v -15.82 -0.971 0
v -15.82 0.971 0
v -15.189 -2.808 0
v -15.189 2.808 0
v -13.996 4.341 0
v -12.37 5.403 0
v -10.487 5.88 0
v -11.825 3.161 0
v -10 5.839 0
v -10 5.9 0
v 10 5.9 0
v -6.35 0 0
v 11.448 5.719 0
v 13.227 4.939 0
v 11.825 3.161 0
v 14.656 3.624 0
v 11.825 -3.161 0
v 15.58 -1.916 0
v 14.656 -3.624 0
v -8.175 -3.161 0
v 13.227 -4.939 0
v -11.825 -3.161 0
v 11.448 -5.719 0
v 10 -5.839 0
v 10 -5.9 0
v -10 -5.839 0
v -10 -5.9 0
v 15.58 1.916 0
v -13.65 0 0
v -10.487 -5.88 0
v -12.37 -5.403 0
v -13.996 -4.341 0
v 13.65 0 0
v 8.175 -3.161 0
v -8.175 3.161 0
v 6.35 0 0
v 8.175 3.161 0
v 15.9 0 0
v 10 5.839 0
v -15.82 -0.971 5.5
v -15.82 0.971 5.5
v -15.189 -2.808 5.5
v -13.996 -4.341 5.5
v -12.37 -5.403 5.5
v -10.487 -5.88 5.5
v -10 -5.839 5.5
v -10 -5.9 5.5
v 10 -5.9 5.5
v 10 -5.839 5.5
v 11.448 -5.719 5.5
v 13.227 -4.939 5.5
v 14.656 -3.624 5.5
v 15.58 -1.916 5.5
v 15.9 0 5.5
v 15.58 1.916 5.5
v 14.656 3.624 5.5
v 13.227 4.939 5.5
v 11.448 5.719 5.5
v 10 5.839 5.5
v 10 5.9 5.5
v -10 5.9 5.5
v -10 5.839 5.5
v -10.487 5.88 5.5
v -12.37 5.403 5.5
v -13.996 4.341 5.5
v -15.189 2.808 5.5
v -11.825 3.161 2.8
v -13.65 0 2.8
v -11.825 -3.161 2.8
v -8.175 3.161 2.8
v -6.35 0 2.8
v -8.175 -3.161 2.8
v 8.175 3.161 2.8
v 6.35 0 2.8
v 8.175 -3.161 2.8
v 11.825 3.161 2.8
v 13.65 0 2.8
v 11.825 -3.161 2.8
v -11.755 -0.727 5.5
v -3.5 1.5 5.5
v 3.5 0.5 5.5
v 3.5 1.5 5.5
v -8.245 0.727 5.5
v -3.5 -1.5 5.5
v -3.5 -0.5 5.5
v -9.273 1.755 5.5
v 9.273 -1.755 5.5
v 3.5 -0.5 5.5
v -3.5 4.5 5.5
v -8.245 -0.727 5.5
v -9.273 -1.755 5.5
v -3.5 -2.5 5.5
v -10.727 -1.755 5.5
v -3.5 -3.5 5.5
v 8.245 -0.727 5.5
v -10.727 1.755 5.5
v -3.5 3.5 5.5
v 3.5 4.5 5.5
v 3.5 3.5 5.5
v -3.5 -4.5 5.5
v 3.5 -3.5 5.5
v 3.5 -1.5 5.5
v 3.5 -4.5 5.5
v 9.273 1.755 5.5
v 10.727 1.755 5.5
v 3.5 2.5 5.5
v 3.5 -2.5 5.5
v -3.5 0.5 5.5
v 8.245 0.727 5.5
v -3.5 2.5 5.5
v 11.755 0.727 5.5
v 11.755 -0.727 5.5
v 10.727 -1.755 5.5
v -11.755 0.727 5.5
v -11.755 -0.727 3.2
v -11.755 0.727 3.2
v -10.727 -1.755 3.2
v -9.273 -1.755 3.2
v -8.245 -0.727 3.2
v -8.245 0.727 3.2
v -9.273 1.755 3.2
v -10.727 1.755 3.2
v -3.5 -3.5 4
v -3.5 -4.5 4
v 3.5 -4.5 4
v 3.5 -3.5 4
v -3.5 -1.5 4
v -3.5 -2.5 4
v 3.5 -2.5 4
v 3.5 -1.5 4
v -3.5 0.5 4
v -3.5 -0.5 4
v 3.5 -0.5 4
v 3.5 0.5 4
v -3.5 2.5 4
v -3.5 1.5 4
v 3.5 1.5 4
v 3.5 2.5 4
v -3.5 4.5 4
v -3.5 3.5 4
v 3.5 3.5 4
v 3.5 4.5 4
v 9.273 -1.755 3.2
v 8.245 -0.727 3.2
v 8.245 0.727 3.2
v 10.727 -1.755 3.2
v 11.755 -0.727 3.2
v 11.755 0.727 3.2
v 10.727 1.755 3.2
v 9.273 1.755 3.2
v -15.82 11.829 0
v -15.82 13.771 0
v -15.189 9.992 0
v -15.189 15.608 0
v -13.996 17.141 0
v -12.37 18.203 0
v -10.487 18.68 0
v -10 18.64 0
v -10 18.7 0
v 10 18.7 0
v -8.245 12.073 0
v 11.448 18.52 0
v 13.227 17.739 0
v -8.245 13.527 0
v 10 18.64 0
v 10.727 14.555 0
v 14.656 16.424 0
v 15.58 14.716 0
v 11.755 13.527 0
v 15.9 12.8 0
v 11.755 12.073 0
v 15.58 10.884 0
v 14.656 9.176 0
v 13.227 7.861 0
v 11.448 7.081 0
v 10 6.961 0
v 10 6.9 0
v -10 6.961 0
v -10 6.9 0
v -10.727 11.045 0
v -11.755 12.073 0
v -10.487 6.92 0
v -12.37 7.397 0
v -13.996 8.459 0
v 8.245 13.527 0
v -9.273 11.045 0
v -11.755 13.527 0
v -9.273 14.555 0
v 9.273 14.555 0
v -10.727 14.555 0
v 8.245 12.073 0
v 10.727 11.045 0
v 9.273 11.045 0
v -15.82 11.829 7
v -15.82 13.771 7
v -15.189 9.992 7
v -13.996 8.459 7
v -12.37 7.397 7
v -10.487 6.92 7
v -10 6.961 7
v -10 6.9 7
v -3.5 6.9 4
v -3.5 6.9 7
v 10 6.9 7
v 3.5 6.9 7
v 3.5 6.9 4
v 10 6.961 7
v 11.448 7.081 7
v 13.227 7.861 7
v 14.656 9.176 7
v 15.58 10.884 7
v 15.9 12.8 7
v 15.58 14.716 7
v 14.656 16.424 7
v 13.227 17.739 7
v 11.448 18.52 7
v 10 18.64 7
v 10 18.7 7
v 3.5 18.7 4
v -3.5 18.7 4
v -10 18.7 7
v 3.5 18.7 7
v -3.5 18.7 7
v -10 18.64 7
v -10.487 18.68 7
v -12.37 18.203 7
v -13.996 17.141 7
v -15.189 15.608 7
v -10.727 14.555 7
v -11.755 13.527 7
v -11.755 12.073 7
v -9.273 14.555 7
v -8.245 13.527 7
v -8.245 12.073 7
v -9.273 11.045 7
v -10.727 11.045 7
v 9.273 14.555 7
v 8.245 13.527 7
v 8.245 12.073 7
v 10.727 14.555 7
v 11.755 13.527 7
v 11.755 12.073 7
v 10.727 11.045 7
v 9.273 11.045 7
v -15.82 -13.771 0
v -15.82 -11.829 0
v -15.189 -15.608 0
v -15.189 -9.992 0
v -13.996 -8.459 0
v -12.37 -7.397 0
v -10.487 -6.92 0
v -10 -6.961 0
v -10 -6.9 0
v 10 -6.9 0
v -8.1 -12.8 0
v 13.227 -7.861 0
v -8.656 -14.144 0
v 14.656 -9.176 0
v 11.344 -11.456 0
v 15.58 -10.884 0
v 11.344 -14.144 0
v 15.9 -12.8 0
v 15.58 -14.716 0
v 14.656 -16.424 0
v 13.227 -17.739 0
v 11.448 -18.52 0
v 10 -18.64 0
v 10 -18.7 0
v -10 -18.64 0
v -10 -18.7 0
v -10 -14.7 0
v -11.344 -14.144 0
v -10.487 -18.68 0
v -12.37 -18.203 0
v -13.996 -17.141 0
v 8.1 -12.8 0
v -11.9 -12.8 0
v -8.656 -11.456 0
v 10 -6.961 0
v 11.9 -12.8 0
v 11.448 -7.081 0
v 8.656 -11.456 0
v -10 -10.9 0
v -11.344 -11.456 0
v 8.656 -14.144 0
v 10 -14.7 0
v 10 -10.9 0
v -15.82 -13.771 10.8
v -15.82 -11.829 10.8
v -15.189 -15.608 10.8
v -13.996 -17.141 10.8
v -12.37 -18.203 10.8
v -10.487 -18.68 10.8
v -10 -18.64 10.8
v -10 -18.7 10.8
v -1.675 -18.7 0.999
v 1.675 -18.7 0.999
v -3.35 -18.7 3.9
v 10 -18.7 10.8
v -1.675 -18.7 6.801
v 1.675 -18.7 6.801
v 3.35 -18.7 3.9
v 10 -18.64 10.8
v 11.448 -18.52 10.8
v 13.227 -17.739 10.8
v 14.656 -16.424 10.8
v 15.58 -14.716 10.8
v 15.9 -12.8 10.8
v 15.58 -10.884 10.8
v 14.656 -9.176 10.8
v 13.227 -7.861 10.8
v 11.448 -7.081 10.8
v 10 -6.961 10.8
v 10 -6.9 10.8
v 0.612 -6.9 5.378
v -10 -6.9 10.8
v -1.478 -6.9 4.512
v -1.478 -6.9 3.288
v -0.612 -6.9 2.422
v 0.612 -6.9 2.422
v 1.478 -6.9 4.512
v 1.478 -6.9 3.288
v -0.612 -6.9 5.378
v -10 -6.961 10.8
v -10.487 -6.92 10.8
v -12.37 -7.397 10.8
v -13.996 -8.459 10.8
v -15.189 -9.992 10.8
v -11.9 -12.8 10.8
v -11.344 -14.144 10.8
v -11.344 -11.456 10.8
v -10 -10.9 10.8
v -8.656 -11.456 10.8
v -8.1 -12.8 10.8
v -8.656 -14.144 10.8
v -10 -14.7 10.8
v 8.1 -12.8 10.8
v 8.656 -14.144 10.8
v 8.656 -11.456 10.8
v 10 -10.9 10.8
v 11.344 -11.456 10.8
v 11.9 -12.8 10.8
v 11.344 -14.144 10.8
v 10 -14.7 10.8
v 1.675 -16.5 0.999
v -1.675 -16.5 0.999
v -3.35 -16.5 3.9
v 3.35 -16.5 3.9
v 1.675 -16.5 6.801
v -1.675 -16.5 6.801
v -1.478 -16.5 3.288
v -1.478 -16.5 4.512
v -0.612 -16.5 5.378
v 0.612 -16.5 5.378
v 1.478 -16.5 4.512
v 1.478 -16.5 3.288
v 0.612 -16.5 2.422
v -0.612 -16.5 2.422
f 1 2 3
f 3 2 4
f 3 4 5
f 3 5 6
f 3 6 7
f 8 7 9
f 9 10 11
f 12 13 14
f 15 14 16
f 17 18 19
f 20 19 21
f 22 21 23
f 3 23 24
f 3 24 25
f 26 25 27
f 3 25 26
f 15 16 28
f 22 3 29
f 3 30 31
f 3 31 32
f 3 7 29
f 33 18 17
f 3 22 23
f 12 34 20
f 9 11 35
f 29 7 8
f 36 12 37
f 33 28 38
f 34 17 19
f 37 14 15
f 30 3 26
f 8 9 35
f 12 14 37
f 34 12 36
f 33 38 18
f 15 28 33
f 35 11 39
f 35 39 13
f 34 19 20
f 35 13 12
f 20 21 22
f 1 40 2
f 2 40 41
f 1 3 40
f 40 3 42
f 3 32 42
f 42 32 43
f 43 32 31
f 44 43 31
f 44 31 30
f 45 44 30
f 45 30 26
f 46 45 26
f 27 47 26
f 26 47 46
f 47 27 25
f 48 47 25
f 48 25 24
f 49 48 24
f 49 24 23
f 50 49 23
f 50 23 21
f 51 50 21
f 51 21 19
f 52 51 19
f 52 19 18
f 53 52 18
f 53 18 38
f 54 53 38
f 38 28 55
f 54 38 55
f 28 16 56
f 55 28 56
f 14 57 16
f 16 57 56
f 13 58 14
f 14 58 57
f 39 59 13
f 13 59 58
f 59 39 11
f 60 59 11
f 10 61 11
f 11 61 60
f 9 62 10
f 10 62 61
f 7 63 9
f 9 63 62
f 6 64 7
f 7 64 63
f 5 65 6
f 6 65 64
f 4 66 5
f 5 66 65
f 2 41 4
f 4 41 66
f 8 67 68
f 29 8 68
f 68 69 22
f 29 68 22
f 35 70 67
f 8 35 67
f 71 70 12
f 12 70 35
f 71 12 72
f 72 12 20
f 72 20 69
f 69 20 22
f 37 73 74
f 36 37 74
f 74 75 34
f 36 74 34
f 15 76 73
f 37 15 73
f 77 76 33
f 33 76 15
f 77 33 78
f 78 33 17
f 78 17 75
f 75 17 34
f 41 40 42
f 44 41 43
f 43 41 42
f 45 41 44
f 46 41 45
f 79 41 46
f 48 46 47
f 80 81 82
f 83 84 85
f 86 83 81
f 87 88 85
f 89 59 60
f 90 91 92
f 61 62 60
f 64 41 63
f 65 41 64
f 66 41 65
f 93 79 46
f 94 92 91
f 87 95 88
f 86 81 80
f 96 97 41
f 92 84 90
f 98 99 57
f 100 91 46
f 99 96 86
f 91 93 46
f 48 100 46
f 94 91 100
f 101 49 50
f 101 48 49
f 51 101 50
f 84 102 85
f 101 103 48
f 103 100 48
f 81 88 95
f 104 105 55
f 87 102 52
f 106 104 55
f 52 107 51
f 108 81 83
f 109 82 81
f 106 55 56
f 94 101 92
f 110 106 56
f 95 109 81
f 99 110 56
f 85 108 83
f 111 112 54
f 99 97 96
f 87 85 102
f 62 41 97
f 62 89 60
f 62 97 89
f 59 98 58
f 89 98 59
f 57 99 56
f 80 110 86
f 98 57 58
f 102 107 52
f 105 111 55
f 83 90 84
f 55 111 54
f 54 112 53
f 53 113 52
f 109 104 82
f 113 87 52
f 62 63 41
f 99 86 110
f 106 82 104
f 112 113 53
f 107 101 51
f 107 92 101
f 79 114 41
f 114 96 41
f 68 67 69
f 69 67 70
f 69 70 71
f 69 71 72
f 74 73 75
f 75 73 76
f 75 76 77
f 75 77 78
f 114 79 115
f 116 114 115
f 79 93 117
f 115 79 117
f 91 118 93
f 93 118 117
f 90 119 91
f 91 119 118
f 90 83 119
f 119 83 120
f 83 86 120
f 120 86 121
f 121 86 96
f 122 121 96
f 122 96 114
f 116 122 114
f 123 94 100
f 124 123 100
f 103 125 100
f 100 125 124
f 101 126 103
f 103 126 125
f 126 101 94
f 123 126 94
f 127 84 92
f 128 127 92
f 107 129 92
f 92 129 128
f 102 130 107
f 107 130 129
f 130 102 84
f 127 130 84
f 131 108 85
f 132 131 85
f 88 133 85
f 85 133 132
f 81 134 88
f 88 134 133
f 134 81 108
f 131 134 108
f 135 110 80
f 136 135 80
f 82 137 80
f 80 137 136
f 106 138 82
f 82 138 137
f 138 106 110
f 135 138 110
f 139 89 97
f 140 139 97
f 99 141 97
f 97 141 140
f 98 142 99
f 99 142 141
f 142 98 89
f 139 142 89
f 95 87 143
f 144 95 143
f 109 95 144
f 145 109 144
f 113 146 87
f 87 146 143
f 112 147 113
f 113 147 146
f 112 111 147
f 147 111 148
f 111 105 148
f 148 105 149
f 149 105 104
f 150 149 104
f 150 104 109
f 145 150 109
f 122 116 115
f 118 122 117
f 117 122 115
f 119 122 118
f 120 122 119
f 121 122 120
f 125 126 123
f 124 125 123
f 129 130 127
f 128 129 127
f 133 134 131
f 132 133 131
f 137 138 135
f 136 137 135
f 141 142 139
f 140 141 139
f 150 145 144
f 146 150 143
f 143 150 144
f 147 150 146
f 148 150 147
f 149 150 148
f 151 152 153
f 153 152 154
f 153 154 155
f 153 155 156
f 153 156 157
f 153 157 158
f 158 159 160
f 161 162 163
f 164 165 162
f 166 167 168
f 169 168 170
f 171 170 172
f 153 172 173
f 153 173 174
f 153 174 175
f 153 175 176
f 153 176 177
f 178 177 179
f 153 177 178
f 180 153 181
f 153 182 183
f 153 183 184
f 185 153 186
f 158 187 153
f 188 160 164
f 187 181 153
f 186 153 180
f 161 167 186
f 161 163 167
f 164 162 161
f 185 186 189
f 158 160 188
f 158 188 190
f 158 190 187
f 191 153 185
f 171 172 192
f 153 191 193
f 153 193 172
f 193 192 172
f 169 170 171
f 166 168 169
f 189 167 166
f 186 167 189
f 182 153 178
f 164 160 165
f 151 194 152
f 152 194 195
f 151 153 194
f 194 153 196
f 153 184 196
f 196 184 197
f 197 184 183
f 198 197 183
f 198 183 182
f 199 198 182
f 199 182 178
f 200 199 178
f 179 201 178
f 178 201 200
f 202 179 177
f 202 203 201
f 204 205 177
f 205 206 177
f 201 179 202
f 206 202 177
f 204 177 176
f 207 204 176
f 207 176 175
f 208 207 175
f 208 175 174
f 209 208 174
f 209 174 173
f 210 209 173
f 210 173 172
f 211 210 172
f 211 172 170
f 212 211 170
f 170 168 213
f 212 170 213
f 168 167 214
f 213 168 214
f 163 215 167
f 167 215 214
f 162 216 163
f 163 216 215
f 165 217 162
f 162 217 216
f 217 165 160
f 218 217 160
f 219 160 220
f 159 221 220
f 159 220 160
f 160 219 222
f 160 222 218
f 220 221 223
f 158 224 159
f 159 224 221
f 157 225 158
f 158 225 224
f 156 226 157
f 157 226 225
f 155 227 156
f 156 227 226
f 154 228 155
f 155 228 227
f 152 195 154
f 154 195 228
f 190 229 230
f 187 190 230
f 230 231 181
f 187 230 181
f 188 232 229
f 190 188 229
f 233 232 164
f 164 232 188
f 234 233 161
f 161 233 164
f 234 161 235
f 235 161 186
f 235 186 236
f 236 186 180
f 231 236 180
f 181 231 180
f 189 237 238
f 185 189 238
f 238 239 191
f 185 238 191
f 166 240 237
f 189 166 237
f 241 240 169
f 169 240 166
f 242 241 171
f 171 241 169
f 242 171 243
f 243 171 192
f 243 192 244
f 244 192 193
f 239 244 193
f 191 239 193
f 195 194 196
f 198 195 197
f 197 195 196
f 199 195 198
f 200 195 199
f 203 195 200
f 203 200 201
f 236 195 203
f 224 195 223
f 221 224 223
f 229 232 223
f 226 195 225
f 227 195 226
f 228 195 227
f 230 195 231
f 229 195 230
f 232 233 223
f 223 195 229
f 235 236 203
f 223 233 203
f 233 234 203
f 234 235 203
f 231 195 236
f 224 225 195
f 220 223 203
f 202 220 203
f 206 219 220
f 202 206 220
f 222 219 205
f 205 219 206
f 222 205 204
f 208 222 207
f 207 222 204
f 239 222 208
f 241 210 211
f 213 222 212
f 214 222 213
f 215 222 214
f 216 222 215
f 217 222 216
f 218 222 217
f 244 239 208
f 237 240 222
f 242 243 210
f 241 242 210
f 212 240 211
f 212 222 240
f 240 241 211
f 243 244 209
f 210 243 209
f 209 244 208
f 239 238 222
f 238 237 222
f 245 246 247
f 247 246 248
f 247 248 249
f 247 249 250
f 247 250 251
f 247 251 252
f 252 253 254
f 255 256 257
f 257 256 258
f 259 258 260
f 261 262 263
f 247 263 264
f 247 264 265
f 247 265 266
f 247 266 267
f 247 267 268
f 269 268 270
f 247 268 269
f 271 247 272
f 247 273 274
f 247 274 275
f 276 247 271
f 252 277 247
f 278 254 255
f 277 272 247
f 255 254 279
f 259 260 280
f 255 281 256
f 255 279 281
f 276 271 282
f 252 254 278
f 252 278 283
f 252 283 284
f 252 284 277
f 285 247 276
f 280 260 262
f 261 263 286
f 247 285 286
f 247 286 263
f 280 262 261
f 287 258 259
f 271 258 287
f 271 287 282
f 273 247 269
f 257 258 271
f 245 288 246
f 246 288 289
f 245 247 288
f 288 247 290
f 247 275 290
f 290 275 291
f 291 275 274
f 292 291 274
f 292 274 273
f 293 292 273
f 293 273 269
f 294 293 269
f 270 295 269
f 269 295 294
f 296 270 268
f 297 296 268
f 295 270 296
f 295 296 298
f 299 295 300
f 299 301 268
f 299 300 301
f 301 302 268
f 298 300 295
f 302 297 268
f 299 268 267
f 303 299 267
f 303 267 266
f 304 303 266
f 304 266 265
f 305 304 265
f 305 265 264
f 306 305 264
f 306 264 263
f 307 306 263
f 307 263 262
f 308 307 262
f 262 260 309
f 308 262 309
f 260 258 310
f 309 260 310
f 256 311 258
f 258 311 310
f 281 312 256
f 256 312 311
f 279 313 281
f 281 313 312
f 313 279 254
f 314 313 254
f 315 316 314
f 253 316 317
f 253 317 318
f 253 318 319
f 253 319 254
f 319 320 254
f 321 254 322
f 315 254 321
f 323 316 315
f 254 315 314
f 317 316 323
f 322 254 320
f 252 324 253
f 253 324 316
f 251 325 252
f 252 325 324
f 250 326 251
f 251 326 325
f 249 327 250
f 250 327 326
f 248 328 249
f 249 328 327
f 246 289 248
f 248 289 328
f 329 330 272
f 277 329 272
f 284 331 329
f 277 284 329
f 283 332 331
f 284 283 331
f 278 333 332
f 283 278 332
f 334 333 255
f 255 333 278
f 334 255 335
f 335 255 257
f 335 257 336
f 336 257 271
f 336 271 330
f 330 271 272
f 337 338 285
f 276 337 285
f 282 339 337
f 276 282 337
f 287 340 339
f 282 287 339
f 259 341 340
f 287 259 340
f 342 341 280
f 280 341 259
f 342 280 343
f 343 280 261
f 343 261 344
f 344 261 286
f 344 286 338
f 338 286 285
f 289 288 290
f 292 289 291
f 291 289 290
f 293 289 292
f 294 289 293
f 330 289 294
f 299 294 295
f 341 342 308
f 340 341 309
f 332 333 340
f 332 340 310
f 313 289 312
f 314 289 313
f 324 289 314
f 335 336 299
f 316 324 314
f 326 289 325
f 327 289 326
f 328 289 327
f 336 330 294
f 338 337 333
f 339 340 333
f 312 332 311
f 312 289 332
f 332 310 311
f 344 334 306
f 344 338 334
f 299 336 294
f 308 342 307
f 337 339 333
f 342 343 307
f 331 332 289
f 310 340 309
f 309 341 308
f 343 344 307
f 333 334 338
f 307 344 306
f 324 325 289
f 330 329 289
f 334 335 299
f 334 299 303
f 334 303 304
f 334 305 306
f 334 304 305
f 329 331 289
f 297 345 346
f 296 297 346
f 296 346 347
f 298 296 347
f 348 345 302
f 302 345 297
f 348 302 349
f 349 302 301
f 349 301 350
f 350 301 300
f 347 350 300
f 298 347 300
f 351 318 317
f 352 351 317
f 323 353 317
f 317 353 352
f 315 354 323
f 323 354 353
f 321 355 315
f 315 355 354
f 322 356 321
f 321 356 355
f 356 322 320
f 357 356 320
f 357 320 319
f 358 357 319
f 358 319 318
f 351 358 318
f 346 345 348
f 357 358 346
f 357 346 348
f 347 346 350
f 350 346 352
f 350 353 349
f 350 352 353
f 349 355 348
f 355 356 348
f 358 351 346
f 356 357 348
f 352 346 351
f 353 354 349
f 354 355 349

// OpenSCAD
// file: configuration2.scad
// PRUSA Mendel  
// Configuration file
// GNU GPL v2
// Josef Průša
// josefprusa@me.com
// prusadjs.cz
// http://www.reprap.org/wiki/Prusa_Mendel
// http://github.com/prusajr/PrusaMendel

// PLEASE SELECT ONE OF THE CONFIGURATIONS BELOW
// BY UN-COMMENTING IT

variant=0; //0 for metric
//variant=1; //1 for SAE
if(variant==0){
echo("variant: metric");
}else if(variant==1){
echo("variant: sae");
} else{
echo("WARNING: INVALID CONFIGURATION");
}


vars=[
//[m8_dia, m8_nut, m4_dia, m4_nut, m3_dia, m3_nut, bush_dia, mot_shaft, bush_rod, bush_outerdia, bush_length]
[9,16,4.5,9.3,3.8,6.7,11,5.3,8,16,11],//metric M8 was 15.8
[9,15.4,4.5,9.3,4.5,9.3,11.5,5.3,7.9375,16,11]//SAE
];

//BUSHING TYPE Can generate three versions
// 1 - regular old ones
// 2 - helical ones
// 3 - holders for brass or any other bought bushings
bushing_type = 2;

//Round corner diameter
round_corner_diameter = 8;

//Thin wall size
layer_height = 0.4;
perimeter_width_over_thicknes = 1.6;
infill_widht_over_thickness = 1.55;
thin_wall = 2*(perimeter_width_over_thicknes*layer_height+infill_widht_over_thickness*layer_height);
if(thin_wall<2){
	echo("Check thin wall size, its below 2mm!");
}
echo(thin_wall);

//DO NOT TOUCH THIS SECTION!
m8_diameter = vars[variant][0];
m8_nut_diameter = vars[variant][1];
m4_diameter = vars[variant][2];
m4_nut_diameter = vars[variant][3];
m3_diameter = vars[variant][4];
m3_nut_diameter = vars[variant][5];
bushing_diameter = vars[variant][6];
motor_shaft=vars[variant][7];
bushing_rodsize = vars[variant][8];
bushing_outerDiameter = vars[variant][9];
bushing_lenght = vars[variant][10];


// MINI-HUXLEY VERSION (TODO, just place holder)
// include <configuration-huxley.scad>

// MEGA VERSION (TODO, just place holder)
// include <configuration-mega.scad>


// Some basic functions, probably should be somewhere else
module roundcorner(diameter){
	difference(){
		cube(size = [diameter,diameter,99], center = false);
		translate(v = [diameter, diameter, 0]) cylinder(h = 100, r=diameter, center=true);
	}
}
// main file
// PLASTIBOT MENDEL
// Y-belt-clamp
// Took the Carriage clams and made them longer for use on the frog assembly
// added a belt socket piece with Screw to tension the belt.
// Plastibot <support@plastibot.com>
// Derived from: 

// Gregs PRUSA Mendel 
// X-carriage
// Used for sliding on X axis
// GNU GPL v2
// Greg Frost
//https://github.com/GregFrost/PrusaMendel

include <configuration2.scad>

/**
* Slides on the x-axis with extruder.
* @name X carriage
* @category Printed
* @using 4 m3x10
* @using 4 m3washer
* @using 4 m3nut
* @using 4 bushing
*/ 

belt_clamp_thickness=2; 
belt_clamp_width=m3_diameter+3*belt_clamp_thickness+2;

belt_clamp(); 


translate([0,belt_clamp_width+1,0]) belt_clamp_channel();

translate([0,-belt_clamp_width-1,0]) belt_clamp_socket();

belt_clamp_hole_separation=20; 

belt_clamp_height=m3_diameter+2*belt_clamp_thickness;
belt_clamp_length=belt_clamp_hole_separation+m3_diameter+2*belt_clamp_thickness;

module belt_clamp_socket()
{
difference()
{
translate([0,0,belt_clamp_height/2+1.5])
union()
{
cube([belt_clamp_hole_separation,belt_clamp_width,belt_clamp_height+3],center=true);
for(i=[-1,1])
translate([i*belt_clamp_hole_separation/2,0,0])
cylinder(r=belt_clamp_width/2,h=belt_clamp_height+3,center=true);
}
belt_clamp_holes();
}
}

belt_width=7;
belt_thickness=1.5; 
tooth_height=1.5;
tooth_spacing=2;

belt_clamp_channel_height=belt_thickness+tooth_height+belt_clamp_thickness*2;

module belt_clamp_channel()
{
difference()
{
translate([0,0,belt_clamp_channel_height/2])
union()
{
cube([belt_clamp_hole_separation,belt_clamp_width,belt_clamp_channel_height],center=true);
for(i=[-1,1])
translate([i*belt_clamp_hole_separation/2,0,0])
cylinder(r=belt_clamp_width/2,h=belt_clamp_channel_height,center=true);
}

for(i=[-1,1])
translate([i*belt_clamp_hole_separation/2,0,-1])
rotate(360/16)
cylinder(r=m3_diameter/2,h=belt_clamp_channel_height+2,$fn=8);

translate([-belt_width/2,-belt_clamp_width/2-1,belt_clamp_channel_height-belt_thickness-tooth_height])
cube([belt_width,belt_clamp_width+2,belt_thickness+tooth_height+1]);
}
}

module belt_clamp_holes()
{
translate([0,0,belt_clamp_height/2])
{
for(i=[-1,1])
translate([i*belt_clamp_hole_separation/2,0,0])
cylinder(r=m3_diameter/2,h=belt_clamp_height+8,center=true,$fn=8);
rotate([90,0,0])
rotate(360/16)
cylinder(r=m3_diameter/2-0.3 /*tight*/ ,h=belt_clamp_width+2,center=true,$fn=8);

rotate([90,0,0]) 
translate([0,0,belt_clamp_width/2])
cylinder(r=m3_nut_diameter/2,h=4.4,center=true,$fn=6);
}
}

belt_clamp_clamp_height=tooth_height+belt_clamp_thickness*2;

module belt_clamp() 
{

union()
{
translate([0,0,3.0])
cube([belt_clamp_hole_separation,belt_clamp_width,0.4],center=true);

for(i=[-1,1])
translate([i*belt_clamp_hole_separation/2,0,3.0])
cylinder(r=belt_clamp_width/2,h=0.4,center=true);

difference()
{
translate([0,0,belt_clamp_clamp_height/2])
union()
{
cube([belt_clamp_hole_separation,belt_clamp_width,belt_clamp_clamp_height],center=true);

for(i=[-1,1])
translate([i*belt_clamp_hole_separation/2,0,0])
cylinder(r=belt_clamp_width/2,h=belt_clamp_clamp_height,center=true);
}

for(i=[-1,1])
translate([i*belt_clamp_hole_separation/2,0,-1])
rotate(360/16)
cylinder(r=m3_diameter/2,h=belt_clamp_clamp_height+2,$fn=8);

for(i=[-1,1])
translate([i*belt_clamp_hole_separation/2,0,-1])
//rotate(360/12)
cylinder(r=m3_nut_diameter/2+0.3,h=4,$fn=6);

for(i=[-2:2])
translate([-belt_width/2,-tooth_spacing/4+i*tooth_spacing,belt_clamp_clamp_height-tooth_height])
cube([belt_width,tooth_spacing/2,tooth_height+1]);
}
}
}
